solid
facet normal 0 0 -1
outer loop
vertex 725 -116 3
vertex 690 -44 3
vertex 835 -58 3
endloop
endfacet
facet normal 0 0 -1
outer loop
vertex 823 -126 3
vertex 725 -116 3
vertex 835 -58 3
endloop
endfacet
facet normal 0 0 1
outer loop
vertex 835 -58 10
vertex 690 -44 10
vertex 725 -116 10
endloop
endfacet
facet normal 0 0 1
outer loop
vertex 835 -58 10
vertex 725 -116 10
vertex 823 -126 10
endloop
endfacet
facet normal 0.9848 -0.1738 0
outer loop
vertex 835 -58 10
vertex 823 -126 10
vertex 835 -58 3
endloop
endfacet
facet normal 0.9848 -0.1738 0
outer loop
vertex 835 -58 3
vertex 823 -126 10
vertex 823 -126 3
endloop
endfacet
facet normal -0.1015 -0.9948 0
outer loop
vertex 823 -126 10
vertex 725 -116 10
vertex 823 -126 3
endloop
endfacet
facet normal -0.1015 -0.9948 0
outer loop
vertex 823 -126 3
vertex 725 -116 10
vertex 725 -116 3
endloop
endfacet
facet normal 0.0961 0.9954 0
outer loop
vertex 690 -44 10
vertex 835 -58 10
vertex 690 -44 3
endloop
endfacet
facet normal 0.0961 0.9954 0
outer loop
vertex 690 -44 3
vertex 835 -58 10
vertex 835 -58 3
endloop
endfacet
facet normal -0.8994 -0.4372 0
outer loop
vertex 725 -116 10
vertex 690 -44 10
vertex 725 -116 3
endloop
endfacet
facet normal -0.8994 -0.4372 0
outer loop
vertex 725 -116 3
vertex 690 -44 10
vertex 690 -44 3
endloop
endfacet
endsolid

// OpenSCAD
polyhedron(points=[[835.0, -58.0, 3.0], [823.0, -126.0, 3.0], [725.0, -116.0, 3.0], [690.0, -44.0, 3.0], [835.0, -58.0, 10.0], [823.0, -126.0, 10.0], [725.0, -116.0, 10.0], [690.0, -44.0, 10.0]], faces=[[2, 3, 0], [1, 2, 0], [4, 7, 6], [4, 6, 5], [4, 5, 0], [0, 5, 1], [5, 6, 1], [1, 6, 2], [7, 4, 3], [3, 4, 0], [6, 7, 2], [2, 7, 3]], convexity=30);
